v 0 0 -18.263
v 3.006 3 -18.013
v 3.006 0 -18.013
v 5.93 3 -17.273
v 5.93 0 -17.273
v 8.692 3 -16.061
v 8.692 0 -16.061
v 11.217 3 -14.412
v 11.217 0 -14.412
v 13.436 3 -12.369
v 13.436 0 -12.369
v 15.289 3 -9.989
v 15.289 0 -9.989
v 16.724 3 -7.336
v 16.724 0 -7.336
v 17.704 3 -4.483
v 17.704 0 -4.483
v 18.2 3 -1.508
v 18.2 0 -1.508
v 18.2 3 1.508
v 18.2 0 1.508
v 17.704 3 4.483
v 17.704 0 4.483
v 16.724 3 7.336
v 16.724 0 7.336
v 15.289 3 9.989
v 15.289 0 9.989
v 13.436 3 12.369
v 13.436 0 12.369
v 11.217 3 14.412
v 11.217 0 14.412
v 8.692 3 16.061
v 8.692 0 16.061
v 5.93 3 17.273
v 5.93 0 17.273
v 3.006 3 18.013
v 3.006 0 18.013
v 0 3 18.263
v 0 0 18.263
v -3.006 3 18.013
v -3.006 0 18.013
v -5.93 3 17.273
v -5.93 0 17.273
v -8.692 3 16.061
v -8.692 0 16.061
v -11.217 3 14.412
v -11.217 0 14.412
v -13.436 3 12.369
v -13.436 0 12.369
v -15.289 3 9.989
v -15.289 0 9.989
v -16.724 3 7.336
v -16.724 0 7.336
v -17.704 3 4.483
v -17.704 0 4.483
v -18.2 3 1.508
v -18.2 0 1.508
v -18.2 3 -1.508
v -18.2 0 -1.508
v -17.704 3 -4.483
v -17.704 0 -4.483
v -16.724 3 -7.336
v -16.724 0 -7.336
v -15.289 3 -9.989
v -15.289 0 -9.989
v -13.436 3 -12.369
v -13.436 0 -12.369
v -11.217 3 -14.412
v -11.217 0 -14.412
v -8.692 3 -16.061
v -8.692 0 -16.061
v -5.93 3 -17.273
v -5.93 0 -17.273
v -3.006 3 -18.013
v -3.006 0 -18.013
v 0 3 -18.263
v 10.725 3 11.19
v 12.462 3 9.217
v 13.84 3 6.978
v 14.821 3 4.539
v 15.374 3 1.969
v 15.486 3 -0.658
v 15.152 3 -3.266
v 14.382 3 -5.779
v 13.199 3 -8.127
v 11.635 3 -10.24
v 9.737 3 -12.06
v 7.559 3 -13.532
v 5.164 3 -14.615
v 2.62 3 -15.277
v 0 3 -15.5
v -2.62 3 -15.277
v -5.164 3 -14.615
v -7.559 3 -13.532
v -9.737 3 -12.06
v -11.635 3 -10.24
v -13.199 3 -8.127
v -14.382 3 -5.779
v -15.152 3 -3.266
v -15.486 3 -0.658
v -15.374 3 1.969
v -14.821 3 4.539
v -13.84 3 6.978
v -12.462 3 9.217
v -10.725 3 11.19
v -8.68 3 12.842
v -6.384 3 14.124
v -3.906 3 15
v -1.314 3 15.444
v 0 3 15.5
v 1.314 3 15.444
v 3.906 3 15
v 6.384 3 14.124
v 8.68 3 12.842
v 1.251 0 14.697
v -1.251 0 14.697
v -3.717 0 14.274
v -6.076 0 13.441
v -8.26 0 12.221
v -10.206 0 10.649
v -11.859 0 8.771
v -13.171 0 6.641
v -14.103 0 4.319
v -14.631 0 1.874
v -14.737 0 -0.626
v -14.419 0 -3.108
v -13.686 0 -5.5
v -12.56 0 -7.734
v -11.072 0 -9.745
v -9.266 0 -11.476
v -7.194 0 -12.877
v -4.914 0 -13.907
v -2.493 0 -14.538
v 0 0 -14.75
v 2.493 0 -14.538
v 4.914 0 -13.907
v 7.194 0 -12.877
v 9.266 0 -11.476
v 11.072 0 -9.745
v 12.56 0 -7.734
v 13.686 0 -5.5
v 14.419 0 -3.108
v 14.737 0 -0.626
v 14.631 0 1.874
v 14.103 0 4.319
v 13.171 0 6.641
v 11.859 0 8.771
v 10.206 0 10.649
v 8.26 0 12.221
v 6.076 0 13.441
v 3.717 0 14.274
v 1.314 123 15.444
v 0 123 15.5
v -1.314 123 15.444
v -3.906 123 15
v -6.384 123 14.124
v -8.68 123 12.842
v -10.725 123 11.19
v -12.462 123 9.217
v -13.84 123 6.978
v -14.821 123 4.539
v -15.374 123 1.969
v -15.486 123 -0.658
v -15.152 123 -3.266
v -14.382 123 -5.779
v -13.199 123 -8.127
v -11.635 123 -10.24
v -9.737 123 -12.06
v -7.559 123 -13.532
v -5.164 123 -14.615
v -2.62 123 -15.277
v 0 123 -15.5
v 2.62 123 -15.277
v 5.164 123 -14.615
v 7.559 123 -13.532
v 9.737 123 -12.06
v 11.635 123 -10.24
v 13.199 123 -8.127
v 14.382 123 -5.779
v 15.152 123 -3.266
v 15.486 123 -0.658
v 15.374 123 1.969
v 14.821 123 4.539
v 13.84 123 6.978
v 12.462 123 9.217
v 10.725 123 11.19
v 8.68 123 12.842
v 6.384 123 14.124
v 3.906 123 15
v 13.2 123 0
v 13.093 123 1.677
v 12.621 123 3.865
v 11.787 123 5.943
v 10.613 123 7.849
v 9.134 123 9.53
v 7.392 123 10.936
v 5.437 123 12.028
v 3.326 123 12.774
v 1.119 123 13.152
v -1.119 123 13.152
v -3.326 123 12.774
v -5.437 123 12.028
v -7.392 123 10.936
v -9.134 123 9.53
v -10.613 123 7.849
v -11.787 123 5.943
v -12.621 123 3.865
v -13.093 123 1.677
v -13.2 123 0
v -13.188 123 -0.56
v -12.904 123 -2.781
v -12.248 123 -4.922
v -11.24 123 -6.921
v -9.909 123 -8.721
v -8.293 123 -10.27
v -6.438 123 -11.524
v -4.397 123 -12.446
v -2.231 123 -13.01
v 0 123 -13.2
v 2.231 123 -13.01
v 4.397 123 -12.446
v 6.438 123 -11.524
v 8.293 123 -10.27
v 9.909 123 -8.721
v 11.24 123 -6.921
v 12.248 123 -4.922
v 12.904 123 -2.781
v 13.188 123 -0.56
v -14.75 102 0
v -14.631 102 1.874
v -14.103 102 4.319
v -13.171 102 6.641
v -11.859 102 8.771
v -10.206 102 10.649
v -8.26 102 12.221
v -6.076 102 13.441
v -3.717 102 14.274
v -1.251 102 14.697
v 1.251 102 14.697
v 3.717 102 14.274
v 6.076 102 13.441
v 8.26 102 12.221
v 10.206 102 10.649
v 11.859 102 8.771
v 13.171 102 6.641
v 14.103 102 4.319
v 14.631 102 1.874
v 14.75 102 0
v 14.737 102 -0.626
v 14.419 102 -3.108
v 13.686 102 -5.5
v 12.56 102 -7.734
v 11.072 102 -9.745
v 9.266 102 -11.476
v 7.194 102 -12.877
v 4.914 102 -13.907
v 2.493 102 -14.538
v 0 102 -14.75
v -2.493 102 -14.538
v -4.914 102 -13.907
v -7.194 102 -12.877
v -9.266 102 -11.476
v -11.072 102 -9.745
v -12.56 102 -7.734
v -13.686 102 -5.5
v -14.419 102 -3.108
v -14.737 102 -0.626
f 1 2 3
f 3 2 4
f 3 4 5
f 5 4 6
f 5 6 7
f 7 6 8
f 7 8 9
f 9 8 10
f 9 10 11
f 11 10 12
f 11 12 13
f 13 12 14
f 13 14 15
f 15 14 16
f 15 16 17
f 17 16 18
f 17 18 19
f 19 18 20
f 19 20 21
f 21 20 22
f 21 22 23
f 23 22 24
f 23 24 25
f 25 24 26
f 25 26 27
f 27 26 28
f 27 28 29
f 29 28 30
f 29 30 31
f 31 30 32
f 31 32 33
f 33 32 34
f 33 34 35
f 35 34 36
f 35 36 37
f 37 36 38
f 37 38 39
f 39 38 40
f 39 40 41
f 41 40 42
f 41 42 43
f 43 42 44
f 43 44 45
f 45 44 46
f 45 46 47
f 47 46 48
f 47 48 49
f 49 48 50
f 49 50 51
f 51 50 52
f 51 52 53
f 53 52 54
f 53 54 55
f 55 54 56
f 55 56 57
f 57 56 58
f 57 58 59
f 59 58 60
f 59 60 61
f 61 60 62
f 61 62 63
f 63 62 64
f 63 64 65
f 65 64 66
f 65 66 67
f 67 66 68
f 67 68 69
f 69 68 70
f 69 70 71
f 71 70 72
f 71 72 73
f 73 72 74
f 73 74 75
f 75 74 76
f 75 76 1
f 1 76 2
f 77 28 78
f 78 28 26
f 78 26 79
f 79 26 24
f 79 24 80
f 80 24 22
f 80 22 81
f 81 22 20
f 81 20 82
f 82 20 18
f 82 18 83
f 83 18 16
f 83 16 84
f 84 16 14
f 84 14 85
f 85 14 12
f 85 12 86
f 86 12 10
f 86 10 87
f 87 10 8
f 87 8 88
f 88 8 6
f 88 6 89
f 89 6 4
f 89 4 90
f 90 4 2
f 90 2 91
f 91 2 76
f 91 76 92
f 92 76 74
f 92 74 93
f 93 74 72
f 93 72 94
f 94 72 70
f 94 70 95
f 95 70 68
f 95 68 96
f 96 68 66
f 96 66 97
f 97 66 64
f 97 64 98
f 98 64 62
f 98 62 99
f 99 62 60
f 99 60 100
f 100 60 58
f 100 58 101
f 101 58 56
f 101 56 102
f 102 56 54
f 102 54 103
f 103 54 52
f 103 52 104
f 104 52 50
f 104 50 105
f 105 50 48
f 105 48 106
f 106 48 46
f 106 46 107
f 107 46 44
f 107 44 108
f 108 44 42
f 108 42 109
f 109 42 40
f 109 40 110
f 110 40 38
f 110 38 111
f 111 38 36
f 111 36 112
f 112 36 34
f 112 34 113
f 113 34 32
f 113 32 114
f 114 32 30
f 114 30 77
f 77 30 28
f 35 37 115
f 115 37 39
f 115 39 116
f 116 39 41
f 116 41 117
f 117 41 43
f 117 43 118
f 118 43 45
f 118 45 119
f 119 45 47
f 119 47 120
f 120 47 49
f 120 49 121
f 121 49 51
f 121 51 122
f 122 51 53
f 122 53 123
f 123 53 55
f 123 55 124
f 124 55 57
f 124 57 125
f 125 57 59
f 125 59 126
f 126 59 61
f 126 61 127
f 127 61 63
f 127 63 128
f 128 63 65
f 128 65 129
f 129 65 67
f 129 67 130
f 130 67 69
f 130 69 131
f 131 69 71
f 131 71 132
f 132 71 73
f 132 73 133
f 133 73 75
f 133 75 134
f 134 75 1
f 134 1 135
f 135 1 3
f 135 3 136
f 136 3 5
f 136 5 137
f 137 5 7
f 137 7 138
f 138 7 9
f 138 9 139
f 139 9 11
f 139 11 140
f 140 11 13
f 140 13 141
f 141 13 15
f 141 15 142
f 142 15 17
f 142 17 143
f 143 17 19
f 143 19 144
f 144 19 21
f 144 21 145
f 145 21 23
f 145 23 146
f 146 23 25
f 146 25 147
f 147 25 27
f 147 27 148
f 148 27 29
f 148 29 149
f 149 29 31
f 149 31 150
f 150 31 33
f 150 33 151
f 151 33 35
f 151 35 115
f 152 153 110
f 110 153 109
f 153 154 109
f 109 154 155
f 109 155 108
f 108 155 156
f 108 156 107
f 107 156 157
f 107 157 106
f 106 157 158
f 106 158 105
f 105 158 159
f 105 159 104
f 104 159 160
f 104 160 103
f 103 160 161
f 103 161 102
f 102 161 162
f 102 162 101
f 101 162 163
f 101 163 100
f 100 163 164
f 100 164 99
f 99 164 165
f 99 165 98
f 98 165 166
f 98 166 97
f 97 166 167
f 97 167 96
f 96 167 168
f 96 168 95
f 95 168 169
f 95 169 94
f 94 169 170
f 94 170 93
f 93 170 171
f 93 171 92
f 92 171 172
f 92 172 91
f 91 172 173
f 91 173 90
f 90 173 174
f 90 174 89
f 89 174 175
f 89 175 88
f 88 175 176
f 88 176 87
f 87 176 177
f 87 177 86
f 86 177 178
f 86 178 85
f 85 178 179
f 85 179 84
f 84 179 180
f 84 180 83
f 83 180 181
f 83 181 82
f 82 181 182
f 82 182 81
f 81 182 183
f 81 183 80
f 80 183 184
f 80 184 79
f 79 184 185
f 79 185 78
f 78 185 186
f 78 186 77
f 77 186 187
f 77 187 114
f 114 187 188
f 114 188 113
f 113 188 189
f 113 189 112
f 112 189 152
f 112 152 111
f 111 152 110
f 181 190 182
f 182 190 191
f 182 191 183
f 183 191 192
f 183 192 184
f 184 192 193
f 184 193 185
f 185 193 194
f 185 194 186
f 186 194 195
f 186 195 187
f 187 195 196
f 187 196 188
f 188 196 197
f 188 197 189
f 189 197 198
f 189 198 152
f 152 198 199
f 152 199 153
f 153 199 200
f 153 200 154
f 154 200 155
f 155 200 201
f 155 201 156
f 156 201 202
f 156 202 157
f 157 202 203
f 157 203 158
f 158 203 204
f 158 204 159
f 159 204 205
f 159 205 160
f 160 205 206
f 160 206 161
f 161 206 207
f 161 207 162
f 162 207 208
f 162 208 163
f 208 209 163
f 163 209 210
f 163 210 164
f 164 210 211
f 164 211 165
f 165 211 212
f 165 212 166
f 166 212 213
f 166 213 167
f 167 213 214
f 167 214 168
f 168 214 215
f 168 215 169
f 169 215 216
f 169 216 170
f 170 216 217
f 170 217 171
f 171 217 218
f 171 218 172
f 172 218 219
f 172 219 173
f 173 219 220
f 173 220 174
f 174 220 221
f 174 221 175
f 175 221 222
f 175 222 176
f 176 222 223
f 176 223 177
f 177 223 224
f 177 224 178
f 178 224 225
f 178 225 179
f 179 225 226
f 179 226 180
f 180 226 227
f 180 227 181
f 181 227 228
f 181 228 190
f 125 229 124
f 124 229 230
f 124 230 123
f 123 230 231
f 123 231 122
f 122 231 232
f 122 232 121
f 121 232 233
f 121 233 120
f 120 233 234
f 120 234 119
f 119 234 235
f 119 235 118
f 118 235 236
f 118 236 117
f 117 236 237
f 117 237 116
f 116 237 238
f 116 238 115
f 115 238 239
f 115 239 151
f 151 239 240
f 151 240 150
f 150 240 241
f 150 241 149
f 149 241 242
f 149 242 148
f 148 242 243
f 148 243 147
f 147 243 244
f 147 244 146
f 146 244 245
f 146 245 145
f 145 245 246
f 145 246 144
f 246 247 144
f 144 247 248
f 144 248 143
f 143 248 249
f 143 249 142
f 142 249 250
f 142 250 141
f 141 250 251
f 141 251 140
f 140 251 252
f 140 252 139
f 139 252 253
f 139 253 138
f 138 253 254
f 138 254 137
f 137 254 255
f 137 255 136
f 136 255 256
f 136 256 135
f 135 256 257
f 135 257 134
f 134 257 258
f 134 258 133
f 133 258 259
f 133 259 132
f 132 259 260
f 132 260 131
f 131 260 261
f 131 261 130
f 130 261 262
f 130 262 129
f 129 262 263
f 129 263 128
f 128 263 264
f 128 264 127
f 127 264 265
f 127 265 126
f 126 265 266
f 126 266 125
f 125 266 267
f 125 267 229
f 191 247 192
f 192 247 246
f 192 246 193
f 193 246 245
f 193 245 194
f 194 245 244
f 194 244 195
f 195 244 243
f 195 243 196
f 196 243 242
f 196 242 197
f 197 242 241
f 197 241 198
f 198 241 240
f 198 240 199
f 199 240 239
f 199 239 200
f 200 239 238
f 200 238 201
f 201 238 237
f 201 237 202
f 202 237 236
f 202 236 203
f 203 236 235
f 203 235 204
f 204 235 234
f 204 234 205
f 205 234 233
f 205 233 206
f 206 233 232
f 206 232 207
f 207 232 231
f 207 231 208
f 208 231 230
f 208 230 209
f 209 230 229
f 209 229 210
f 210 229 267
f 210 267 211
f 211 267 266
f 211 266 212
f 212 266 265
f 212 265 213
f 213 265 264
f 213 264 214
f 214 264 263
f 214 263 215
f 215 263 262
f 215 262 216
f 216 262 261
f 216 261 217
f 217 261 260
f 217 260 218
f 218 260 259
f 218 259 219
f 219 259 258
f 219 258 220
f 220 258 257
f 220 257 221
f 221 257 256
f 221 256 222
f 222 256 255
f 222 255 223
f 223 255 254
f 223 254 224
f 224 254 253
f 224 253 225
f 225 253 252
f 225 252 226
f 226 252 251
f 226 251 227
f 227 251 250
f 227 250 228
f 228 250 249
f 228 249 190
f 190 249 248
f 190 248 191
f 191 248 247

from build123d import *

# Parameters (mm, degrees)
CROQUIS1_R              = 18.2625
SALIENTE_EXTRUIR1_DEPTH = 3
CROQUIS2_R              = 15.5
SALIENTE_EXTRUIR2_DEPTH = 120
CROQUIS3_R              = 14.75
CORTAR_EXTRUIR1_DEPTH   = 102


with BuildPart() as part:
    # Croquis1 → Saliente-Extruir1 (new body)
    with BuildSketch(Plane(origin=(0, 0, 0), x_dir=(1, 0, 0), z_dir=(0, 1, 0))):
        with Locations(Location((0, 0, 0), (0, 0, 270))):
            Circle(CROQUIS1_R)
    extrude(amount=SALIENTE_EXTRUIR1_DEPTH)

    # Croquis2 → Saliente-Extruir2 (add)
    with BuildSketch(Plane(origin=(0, 3, 0), x_dir=(1, 0, 0), z_dir=(0, 1, 0))):
        with Locations(Location((0, 0, 0), (0, 0, 270))):
            Circle(CROQUIS2_R)
    extrude(amount=SALIENTE_EXTRUIR2_DEPTH)

    # Croquis3 → Cortar-Extruir1 (cut)
    with BuildSketch(Plane.XZ):
        with Locations(Location((0, 0, 0), (0, 0, 270))):
            Circle(CROQUIS3_R)
    extrude(amount=-CORTAR_EXTRUIR1_DEPTH, mode=Mode.SUBTRACT)

    # Croquis4 → Cortar-Revolución3 (revolve, cut)
    with BuildSketch(Plane.XY):
        Polygon((0, 102), (-14.75, 102), (-13.2, 123), (0, 123), align=None)
    revolve(axis=Axis((0, 123, 0), (0, -1, 0)), mode=Mode.SUBTRACT)


solid = part.part
